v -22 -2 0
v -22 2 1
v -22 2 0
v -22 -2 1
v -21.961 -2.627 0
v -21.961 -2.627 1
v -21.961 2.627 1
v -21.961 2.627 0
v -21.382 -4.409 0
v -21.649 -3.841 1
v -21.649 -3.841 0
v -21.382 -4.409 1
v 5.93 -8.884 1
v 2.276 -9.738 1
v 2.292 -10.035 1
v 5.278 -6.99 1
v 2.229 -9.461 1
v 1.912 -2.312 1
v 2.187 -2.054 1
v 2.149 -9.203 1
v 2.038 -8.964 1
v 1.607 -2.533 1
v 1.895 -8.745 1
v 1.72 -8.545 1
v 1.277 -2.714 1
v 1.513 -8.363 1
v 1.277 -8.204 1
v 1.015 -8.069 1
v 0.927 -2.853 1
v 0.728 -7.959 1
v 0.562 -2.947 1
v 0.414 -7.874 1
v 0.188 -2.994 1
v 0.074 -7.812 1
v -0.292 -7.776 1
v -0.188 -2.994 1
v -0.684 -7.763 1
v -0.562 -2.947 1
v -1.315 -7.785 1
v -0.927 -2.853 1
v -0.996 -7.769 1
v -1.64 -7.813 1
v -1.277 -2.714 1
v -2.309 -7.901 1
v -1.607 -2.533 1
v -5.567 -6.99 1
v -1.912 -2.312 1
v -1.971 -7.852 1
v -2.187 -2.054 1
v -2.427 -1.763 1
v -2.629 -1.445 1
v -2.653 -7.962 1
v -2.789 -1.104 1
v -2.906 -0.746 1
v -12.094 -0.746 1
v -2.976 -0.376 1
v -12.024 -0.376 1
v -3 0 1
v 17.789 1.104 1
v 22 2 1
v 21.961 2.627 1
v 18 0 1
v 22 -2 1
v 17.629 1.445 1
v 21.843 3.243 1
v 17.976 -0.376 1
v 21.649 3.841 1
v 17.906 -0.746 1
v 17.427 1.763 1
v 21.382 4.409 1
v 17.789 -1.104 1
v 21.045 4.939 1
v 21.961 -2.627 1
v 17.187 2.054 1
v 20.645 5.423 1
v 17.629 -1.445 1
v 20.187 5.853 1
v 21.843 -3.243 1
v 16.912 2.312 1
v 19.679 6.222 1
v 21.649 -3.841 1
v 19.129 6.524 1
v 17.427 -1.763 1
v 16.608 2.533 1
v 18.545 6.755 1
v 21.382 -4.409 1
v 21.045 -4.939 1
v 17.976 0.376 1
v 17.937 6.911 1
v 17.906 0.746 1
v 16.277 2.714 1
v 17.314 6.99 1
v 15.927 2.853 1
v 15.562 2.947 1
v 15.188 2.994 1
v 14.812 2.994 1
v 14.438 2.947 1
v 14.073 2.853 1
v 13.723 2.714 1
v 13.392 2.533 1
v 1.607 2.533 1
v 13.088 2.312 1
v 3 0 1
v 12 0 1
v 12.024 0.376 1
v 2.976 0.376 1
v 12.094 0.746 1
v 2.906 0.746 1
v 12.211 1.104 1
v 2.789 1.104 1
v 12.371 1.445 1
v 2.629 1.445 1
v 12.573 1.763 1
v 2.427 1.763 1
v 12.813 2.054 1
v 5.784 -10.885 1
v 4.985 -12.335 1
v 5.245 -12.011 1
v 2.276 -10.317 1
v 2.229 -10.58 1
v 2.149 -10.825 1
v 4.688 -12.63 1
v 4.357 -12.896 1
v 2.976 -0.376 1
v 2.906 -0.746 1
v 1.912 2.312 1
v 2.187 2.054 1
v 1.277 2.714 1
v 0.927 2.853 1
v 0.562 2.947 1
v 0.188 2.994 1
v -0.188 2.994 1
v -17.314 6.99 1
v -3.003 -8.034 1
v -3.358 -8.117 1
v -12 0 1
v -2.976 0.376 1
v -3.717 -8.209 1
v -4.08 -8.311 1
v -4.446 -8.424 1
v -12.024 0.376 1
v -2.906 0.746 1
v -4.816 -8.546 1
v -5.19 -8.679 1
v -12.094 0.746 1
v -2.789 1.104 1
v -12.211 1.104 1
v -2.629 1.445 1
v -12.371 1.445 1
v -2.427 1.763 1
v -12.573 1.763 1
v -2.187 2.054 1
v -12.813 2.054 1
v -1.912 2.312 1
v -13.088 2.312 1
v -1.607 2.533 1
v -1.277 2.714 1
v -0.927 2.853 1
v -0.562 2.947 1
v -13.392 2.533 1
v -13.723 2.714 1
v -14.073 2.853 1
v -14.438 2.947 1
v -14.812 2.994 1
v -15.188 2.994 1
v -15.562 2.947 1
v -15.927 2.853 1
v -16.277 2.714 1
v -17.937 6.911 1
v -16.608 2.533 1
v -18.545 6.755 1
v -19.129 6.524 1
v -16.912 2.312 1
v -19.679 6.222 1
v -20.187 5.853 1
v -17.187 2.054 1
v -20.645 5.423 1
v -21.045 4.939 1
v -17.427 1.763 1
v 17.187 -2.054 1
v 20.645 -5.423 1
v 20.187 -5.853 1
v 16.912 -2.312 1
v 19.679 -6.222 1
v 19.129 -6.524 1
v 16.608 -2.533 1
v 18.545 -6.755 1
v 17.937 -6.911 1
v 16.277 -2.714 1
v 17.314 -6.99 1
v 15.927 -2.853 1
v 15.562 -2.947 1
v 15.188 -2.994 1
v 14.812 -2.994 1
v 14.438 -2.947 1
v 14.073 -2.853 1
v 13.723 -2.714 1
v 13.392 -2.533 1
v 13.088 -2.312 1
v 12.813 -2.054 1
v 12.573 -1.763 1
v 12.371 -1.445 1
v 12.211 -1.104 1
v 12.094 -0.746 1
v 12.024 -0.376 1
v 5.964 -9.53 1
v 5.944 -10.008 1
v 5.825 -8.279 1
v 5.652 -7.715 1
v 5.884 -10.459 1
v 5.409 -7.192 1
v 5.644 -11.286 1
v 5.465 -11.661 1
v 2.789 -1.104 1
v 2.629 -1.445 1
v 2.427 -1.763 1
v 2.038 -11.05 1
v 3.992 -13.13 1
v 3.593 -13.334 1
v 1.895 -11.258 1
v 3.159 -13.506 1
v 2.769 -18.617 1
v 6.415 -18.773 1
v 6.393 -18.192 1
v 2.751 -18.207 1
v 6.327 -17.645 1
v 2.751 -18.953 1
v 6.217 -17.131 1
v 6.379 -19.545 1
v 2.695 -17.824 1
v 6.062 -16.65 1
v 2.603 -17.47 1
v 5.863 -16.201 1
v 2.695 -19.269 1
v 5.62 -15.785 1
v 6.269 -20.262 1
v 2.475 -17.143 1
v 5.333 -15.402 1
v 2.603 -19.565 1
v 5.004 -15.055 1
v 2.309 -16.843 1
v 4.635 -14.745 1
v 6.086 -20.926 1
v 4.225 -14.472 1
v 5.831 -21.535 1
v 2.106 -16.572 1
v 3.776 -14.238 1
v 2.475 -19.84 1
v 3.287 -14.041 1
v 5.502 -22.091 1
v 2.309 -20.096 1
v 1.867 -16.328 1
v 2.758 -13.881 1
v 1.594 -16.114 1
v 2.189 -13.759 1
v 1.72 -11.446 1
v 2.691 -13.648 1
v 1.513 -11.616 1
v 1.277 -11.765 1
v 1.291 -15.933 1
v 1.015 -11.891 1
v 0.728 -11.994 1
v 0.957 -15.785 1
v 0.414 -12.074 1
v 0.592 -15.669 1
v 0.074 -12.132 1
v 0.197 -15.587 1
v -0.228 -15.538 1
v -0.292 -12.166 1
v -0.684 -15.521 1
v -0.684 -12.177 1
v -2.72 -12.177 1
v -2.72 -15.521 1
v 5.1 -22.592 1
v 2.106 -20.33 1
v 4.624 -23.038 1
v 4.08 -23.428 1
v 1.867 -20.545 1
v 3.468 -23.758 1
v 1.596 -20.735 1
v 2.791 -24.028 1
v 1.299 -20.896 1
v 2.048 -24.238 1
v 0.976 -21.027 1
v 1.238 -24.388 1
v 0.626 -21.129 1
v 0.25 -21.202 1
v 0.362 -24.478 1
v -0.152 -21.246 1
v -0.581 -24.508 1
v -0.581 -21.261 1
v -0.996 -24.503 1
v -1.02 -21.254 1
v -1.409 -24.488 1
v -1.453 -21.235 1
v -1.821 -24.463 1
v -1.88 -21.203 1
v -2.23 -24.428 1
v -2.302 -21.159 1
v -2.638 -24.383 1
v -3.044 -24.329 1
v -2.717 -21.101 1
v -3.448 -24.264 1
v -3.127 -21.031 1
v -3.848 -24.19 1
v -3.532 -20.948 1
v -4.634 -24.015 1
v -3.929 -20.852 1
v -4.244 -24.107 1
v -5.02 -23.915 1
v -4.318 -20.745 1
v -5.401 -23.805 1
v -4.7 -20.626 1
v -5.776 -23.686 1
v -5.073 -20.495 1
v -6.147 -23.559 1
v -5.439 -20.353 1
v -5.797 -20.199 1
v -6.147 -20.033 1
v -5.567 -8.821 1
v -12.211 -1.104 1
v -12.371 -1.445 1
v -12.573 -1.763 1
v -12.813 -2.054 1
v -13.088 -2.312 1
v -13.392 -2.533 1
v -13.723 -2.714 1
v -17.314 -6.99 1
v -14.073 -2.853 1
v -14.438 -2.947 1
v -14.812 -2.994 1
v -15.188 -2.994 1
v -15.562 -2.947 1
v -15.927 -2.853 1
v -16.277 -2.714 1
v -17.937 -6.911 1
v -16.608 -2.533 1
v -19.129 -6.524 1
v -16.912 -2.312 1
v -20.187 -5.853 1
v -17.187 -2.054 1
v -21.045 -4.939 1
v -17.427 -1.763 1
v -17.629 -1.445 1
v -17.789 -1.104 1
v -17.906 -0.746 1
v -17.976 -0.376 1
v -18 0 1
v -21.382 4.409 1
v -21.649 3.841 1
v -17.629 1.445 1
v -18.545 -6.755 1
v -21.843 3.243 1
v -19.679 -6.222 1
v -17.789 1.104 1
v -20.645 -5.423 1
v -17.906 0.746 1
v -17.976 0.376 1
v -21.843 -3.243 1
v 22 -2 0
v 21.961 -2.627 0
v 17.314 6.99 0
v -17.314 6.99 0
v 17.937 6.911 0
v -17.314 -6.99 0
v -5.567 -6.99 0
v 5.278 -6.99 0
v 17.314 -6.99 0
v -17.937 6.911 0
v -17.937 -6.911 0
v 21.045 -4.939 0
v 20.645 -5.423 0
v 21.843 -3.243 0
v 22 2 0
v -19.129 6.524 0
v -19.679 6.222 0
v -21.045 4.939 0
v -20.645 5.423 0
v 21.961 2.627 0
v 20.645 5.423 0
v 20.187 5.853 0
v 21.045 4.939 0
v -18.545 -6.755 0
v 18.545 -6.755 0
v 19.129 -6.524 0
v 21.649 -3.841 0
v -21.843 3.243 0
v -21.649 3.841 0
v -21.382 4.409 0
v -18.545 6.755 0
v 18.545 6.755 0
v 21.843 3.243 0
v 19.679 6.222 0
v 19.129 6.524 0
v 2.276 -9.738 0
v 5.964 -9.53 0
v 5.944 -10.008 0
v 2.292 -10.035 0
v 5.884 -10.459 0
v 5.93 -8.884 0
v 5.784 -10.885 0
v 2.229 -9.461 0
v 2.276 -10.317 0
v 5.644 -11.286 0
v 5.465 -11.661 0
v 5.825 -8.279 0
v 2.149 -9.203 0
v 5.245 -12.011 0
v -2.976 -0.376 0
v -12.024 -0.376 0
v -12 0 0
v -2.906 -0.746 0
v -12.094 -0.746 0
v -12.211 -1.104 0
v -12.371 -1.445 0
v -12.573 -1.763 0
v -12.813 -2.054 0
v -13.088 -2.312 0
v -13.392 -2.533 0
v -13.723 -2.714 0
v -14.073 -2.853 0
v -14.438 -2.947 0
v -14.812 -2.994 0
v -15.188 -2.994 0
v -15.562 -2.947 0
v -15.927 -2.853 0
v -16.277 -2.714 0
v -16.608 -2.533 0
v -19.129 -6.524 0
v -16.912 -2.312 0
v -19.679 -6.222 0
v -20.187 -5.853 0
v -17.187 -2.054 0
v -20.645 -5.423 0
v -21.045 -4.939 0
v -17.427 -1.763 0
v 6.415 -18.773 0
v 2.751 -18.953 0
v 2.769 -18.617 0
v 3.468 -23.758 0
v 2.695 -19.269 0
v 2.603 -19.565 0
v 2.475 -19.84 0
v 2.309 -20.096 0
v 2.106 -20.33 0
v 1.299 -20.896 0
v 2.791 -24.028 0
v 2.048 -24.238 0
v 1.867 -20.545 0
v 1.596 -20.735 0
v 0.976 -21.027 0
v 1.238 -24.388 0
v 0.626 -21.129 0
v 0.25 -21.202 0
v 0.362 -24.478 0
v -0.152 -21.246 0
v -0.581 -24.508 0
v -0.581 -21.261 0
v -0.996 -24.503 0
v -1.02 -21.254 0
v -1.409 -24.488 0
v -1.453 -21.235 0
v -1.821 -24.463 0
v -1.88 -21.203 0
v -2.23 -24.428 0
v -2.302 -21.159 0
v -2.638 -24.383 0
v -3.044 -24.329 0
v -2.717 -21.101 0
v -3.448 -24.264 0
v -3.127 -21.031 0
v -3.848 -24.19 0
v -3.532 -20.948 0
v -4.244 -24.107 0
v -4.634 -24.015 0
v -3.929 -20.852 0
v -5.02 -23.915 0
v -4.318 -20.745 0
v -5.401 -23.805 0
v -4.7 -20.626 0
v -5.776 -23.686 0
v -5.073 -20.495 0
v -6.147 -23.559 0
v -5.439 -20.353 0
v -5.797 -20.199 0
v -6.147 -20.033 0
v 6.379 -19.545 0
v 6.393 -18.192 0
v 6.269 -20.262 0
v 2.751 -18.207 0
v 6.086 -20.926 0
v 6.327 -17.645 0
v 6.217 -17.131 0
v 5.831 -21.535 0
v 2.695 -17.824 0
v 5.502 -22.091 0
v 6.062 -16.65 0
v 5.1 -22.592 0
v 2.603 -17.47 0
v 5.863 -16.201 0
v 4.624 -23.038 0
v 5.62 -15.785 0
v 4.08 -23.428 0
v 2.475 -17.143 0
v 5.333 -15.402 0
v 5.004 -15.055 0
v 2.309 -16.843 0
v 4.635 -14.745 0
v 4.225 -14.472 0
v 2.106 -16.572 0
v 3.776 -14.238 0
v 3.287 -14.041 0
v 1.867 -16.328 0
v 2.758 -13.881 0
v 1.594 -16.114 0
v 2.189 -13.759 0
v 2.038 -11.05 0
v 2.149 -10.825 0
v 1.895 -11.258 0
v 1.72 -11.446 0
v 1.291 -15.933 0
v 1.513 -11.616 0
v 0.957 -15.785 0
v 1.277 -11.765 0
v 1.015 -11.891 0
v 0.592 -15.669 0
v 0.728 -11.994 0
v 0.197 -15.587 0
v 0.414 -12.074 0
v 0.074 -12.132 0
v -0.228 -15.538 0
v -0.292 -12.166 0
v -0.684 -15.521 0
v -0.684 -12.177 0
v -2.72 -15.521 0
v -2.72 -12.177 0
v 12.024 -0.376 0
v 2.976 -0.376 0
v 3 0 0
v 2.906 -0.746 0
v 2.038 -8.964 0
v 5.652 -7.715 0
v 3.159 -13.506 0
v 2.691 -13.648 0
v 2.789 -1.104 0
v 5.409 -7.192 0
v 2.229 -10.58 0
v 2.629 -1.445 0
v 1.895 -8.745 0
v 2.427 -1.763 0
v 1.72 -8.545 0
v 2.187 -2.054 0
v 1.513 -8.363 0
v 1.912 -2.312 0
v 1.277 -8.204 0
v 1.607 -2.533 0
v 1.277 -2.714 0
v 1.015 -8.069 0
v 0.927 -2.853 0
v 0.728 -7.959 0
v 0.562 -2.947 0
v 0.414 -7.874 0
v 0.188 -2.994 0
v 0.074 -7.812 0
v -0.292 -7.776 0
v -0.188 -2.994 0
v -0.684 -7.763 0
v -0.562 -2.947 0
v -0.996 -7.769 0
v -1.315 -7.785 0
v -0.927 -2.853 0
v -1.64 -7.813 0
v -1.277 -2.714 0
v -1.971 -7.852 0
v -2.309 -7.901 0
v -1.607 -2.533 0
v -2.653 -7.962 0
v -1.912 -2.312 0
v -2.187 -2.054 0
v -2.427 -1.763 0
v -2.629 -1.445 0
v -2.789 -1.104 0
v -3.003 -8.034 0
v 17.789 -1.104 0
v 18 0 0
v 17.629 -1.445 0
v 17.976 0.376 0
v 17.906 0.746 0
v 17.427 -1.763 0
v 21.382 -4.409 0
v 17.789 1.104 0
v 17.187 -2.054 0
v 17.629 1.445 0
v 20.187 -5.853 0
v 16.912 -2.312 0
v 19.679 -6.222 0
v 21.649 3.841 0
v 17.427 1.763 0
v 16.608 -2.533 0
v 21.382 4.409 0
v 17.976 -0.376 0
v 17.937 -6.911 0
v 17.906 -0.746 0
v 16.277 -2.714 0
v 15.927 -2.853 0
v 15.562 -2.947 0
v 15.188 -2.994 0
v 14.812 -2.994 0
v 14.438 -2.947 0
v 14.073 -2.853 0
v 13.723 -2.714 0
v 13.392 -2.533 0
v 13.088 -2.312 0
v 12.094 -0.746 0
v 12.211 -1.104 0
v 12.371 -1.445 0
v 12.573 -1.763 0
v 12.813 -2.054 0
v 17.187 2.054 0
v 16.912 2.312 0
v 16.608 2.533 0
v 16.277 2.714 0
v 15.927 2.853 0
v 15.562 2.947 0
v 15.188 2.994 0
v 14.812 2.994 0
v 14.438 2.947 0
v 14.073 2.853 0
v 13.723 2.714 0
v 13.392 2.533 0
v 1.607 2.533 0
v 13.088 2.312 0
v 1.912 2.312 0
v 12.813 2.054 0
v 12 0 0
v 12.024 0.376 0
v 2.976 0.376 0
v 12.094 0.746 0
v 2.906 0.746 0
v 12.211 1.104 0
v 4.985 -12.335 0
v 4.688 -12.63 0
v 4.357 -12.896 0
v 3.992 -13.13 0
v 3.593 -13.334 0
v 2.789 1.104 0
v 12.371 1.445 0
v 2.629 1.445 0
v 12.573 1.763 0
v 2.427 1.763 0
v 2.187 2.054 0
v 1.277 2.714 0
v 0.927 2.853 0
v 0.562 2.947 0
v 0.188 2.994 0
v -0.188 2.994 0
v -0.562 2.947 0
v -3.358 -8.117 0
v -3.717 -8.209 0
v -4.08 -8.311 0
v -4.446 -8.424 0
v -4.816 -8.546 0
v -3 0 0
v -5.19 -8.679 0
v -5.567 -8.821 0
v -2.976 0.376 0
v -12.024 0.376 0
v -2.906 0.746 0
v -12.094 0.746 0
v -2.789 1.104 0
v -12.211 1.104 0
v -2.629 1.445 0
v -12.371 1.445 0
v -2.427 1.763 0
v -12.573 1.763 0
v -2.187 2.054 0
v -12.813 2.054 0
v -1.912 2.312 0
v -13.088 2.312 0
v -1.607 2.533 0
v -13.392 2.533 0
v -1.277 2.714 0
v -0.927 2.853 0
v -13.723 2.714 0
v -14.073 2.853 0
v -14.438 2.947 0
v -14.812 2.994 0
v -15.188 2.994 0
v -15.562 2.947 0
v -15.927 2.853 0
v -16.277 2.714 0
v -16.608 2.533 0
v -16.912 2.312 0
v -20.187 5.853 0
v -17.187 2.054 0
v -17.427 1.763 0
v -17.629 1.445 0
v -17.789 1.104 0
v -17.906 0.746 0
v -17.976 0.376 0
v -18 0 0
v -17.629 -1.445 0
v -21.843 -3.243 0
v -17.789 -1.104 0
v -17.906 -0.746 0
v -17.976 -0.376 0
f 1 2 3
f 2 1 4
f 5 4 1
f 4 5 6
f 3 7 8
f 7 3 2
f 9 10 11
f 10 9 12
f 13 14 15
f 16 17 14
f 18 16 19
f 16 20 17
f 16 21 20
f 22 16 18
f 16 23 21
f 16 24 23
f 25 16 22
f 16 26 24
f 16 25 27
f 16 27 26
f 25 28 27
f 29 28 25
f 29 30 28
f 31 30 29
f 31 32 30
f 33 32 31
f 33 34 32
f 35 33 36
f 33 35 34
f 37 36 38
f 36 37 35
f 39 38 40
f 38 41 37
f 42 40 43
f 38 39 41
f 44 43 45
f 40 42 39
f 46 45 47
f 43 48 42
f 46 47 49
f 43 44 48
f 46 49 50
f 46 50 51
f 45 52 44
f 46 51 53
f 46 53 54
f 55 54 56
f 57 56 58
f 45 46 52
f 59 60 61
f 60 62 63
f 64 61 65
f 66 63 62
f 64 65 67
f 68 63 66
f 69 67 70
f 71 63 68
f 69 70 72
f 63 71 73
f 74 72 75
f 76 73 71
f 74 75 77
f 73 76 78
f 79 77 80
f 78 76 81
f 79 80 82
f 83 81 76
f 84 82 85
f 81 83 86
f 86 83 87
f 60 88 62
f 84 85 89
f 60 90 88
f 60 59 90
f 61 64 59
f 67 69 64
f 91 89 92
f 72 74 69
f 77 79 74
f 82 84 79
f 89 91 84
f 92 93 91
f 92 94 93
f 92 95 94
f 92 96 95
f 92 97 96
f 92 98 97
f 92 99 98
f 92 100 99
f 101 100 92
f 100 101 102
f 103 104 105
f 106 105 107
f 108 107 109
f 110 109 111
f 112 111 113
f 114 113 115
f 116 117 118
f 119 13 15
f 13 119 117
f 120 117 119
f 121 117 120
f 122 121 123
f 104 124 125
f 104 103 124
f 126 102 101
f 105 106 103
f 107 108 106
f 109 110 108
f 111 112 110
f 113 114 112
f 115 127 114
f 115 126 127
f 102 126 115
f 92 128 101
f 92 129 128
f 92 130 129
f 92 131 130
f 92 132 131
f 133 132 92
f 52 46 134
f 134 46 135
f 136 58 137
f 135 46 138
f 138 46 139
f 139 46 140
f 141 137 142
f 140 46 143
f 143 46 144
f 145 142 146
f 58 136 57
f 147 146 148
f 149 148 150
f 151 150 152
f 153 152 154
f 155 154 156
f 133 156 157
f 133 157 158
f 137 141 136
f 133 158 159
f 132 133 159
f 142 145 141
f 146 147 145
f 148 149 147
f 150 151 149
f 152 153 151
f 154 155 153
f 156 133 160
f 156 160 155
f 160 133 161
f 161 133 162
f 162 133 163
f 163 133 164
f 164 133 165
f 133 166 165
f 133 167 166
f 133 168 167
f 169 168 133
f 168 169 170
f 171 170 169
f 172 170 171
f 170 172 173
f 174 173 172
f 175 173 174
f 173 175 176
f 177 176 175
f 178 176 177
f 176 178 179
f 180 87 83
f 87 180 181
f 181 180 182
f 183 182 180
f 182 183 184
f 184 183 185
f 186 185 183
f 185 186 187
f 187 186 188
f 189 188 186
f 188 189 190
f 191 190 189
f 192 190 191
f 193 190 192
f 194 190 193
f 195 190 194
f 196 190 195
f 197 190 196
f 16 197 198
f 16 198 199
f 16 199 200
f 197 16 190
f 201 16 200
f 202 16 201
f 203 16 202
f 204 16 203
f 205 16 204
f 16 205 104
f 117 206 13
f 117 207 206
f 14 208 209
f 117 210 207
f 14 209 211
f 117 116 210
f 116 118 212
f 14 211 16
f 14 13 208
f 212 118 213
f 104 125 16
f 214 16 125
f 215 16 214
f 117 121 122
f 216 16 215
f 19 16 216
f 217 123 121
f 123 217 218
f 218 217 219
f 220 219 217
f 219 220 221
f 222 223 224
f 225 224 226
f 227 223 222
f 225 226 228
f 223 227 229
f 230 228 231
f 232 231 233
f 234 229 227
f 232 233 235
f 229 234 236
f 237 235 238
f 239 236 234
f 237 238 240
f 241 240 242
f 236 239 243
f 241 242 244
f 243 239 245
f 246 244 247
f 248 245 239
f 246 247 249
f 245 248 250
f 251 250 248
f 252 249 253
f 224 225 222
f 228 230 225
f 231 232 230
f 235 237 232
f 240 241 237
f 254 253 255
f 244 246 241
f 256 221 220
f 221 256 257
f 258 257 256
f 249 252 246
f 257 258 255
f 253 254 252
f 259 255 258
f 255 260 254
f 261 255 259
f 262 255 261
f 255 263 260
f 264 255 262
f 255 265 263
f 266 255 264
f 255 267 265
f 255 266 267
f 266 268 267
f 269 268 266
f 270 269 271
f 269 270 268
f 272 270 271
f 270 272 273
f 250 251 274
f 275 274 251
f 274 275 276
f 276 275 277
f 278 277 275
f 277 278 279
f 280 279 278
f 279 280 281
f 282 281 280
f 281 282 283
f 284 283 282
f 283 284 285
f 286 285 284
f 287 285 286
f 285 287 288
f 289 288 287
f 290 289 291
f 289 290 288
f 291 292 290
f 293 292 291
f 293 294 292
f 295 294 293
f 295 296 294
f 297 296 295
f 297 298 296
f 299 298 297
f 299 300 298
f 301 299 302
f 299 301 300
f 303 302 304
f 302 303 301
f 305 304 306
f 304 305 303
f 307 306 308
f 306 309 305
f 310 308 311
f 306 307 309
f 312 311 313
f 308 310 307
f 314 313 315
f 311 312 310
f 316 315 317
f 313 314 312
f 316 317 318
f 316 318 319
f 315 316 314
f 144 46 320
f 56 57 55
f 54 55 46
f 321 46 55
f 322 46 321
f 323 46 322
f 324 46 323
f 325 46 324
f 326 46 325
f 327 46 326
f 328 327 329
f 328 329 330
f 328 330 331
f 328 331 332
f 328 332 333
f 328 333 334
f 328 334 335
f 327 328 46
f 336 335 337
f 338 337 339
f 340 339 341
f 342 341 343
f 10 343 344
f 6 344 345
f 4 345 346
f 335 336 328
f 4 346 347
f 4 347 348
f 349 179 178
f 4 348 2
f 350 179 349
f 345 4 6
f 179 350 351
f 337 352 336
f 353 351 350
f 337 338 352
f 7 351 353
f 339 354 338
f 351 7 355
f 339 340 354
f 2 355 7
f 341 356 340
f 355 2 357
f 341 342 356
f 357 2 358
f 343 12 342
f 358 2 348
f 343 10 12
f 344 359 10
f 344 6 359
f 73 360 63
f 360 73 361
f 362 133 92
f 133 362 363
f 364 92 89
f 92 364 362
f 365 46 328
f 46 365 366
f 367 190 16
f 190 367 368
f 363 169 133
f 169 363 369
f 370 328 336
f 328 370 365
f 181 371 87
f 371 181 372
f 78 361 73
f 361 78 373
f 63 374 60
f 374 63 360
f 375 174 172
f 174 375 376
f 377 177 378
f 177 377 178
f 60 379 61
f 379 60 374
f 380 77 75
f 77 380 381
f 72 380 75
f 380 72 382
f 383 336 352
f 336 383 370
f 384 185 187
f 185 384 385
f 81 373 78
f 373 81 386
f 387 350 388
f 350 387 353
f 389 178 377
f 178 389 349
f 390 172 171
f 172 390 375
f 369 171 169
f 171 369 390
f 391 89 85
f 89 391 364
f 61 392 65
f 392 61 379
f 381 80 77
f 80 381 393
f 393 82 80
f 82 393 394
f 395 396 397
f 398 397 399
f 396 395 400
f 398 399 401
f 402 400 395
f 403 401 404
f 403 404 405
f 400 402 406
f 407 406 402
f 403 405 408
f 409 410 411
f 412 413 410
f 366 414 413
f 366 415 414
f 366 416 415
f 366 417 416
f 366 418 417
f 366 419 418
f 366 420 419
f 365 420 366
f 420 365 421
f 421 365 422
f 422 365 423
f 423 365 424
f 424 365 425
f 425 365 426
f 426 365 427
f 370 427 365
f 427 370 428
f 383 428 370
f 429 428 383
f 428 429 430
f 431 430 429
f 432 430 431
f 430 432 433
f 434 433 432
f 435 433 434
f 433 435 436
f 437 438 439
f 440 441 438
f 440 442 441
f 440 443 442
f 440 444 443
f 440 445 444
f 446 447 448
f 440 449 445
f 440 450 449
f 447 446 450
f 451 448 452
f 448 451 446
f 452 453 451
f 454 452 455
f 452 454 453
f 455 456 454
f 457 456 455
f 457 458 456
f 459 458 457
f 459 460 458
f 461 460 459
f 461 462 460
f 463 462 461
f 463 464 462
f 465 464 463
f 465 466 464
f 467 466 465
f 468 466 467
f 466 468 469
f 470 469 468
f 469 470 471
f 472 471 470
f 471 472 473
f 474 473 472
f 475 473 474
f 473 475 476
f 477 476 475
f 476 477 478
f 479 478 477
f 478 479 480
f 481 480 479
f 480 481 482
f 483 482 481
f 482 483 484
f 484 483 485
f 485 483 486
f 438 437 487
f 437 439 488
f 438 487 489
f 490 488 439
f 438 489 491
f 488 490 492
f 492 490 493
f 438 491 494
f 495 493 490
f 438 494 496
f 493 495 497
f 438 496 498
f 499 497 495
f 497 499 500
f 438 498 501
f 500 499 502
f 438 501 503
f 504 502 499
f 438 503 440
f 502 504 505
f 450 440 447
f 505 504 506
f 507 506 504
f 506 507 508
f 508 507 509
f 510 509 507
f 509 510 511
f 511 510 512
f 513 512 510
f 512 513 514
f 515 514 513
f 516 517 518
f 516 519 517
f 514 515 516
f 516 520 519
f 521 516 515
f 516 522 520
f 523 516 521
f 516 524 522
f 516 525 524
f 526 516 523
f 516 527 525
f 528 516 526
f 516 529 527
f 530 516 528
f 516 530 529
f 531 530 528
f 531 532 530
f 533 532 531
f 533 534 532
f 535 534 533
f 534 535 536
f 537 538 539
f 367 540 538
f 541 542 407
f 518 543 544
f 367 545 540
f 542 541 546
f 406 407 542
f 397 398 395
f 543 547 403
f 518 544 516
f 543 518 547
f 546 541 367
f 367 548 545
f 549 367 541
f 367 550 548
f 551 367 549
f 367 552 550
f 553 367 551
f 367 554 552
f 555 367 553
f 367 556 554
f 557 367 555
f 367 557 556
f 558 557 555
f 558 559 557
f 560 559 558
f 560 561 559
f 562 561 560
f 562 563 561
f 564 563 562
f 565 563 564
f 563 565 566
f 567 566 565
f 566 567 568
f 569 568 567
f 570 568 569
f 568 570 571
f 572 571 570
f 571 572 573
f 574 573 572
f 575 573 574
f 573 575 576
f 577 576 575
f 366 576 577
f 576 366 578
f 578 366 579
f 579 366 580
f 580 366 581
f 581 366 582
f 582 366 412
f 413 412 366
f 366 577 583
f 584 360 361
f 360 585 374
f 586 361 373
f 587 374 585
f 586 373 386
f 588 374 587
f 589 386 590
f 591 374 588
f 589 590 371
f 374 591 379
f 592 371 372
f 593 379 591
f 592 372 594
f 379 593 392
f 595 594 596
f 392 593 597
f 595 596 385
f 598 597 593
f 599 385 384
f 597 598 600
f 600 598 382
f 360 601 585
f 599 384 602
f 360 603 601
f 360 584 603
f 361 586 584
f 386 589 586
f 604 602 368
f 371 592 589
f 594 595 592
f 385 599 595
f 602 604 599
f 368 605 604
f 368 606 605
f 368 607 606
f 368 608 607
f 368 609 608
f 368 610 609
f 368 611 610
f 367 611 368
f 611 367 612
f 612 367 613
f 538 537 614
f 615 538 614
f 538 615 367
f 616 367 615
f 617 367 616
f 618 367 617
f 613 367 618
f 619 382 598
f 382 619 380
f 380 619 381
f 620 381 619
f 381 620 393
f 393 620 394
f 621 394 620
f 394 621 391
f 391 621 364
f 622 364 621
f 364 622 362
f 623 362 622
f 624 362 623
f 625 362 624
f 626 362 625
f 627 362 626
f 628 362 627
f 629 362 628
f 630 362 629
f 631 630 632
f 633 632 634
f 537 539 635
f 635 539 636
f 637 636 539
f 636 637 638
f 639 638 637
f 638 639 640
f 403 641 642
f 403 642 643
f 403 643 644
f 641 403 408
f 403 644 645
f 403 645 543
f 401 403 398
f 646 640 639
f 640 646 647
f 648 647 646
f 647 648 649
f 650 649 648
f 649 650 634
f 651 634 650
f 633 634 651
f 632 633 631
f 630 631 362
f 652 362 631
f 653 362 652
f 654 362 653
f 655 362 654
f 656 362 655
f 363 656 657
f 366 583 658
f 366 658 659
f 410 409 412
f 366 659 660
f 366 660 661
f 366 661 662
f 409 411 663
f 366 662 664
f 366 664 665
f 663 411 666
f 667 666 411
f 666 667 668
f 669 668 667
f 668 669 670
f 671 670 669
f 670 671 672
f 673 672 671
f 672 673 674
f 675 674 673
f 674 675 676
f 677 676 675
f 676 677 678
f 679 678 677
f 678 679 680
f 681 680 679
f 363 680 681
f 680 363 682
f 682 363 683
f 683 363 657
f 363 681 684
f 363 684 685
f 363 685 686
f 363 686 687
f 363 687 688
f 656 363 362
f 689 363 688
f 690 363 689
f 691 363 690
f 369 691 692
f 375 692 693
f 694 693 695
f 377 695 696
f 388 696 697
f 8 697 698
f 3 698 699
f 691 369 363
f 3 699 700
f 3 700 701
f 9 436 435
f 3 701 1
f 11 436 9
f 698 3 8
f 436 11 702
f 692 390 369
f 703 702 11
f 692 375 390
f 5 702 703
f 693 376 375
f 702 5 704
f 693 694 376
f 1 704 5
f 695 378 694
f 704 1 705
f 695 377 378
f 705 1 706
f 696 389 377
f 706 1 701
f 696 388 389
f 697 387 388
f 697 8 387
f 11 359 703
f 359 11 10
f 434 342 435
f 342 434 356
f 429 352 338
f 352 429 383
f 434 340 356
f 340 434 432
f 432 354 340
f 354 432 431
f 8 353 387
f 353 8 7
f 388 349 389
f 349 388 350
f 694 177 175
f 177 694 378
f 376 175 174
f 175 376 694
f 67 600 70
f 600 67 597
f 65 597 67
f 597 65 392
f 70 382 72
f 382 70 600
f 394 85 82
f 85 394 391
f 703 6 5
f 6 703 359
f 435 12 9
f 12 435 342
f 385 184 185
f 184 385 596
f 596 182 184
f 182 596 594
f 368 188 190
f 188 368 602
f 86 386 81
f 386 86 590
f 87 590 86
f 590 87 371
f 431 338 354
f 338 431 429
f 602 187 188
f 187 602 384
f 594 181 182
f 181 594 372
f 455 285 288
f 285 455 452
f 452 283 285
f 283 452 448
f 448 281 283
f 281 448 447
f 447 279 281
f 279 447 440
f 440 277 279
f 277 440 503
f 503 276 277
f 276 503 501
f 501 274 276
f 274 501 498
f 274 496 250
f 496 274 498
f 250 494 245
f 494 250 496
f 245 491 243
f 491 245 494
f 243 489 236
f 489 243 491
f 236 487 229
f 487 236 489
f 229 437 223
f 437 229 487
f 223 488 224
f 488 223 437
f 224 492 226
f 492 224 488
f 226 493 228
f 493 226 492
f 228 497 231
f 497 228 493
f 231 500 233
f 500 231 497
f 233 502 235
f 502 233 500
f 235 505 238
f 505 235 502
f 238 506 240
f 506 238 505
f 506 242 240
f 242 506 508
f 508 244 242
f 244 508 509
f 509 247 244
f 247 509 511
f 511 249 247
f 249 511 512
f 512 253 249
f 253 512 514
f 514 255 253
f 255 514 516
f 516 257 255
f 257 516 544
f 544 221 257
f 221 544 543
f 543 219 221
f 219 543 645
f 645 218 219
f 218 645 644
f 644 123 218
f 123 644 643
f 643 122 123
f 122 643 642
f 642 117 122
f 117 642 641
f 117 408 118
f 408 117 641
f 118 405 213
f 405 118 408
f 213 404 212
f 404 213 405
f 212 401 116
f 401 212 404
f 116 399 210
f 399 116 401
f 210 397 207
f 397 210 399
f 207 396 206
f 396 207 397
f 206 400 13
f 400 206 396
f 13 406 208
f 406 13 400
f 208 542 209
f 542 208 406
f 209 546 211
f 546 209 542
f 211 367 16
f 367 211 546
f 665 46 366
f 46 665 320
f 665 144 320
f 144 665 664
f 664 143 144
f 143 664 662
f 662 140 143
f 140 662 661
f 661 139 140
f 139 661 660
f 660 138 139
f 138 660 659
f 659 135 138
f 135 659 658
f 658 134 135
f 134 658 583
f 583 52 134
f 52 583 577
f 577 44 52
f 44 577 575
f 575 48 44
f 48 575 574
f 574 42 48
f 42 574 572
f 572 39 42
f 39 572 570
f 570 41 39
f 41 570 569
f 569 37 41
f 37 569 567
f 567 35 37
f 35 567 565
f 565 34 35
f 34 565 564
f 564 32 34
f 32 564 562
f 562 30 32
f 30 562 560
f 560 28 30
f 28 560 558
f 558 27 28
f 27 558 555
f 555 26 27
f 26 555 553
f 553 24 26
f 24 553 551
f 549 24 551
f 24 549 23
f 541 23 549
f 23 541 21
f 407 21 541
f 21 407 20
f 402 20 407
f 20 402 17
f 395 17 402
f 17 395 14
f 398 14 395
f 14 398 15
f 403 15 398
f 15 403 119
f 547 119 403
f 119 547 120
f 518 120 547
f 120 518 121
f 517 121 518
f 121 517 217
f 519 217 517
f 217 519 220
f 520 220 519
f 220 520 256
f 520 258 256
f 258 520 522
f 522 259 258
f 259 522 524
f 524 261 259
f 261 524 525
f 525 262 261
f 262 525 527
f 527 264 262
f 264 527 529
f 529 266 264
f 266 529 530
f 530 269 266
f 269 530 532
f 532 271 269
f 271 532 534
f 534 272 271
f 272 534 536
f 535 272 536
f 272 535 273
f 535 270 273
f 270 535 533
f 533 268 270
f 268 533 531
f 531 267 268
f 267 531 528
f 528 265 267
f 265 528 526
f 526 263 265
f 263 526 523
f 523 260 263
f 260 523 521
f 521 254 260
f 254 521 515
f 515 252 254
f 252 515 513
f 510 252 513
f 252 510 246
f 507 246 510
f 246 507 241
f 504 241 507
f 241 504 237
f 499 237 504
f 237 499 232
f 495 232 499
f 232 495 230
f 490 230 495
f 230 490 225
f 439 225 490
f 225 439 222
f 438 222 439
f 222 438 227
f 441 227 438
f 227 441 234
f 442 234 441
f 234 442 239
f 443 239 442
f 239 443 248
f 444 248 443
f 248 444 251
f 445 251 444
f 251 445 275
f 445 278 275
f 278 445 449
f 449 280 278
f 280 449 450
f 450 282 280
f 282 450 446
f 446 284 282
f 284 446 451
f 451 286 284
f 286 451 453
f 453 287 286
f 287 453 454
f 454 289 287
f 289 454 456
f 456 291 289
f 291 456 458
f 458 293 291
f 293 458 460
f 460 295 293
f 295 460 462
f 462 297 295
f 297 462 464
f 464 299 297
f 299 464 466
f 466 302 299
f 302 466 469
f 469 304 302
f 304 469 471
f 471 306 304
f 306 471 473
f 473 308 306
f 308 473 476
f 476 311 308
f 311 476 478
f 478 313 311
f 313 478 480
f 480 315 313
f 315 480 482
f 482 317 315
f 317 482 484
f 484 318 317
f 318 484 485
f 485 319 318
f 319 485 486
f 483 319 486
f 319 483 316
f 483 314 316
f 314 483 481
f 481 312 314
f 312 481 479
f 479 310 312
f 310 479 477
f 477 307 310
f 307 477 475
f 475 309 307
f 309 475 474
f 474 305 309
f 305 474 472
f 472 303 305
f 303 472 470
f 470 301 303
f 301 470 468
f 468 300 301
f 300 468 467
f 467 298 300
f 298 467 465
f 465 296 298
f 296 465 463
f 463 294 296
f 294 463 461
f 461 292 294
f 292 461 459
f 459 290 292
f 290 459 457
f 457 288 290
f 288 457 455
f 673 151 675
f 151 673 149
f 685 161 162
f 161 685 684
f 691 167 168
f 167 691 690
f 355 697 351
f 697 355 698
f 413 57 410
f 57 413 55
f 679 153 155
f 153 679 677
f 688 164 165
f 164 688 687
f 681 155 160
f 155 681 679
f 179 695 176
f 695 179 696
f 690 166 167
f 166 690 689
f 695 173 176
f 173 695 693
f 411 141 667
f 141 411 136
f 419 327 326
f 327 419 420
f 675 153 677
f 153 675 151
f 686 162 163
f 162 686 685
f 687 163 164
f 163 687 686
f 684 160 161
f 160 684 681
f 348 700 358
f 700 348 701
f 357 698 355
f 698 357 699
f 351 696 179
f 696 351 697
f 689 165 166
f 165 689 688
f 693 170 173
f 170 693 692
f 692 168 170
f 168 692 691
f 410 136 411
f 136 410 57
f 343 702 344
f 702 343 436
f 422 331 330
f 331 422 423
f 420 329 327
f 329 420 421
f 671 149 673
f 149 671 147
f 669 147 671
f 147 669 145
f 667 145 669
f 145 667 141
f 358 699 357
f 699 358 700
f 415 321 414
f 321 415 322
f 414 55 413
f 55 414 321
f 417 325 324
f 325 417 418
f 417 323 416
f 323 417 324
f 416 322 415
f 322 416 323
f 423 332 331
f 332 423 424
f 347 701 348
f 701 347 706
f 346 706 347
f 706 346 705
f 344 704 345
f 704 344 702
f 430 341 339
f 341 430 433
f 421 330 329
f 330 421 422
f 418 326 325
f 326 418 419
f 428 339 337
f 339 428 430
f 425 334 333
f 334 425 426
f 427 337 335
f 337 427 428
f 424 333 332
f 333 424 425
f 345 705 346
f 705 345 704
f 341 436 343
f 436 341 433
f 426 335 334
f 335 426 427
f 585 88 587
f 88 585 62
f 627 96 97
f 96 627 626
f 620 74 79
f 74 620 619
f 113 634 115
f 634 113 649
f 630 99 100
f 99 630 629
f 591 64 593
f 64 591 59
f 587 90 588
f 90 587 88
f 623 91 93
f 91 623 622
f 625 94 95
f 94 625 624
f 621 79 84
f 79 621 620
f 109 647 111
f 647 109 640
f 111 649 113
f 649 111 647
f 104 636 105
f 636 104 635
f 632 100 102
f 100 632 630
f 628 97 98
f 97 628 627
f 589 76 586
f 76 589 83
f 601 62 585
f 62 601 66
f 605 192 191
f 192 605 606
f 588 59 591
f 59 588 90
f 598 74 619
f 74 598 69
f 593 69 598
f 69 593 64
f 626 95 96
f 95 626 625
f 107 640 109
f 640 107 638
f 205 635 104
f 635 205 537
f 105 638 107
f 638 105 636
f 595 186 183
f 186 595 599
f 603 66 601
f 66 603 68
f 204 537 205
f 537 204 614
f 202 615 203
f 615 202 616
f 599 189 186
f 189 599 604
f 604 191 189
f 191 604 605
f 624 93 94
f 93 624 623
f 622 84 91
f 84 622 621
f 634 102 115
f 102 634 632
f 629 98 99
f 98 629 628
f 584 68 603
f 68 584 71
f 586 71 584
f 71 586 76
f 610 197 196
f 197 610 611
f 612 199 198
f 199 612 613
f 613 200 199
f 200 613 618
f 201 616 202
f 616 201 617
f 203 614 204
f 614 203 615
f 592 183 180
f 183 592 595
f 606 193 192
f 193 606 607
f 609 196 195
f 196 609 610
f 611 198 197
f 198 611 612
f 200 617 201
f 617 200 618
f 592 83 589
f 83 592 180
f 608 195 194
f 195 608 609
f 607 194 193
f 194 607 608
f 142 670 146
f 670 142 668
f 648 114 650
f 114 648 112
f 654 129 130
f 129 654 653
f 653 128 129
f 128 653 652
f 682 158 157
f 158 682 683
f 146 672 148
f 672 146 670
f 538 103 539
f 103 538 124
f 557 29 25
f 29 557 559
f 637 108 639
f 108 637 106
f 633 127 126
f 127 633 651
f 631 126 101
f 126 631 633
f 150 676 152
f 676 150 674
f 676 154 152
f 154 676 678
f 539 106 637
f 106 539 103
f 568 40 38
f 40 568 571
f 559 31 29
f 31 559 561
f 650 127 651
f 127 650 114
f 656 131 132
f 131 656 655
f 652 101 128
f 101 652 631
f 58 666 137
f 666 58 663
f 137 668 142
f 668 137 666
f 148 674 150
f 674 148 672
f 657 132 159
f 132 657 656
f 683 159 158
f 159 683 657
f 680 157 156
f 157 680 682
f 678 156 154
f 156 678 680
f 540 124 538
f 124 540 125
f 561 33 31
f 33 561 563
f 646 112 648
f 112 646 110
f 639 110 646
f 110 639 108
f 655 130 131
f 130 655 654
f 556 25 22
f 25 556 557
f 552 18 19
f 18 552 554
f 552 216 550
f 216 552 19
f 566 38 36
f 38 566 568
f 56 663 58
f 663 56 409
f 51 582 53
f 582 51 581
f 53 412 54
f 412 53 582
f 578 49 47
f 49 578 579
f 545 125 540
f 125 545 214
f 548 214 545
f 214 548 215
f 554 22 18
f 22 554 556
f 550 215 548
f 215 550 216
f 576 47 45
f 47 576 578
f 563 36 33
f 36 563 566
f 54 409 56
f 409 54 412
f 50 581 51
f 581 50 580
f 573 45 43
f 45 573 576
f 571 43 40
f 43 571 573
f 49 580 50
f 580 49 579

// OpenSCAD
$fn = 50;


difference() {
	union() {
		translate(v = [0, 0, 0]) {
			rotate(a = [0, 0, 0]) {
				hull() {
					translate(v = [-17.0000000000, 2.0000000000, 0]) {
						rotate(a = [0, 0, 0]) {
							translate(v = [0, 0, 0]) {
								rotate(a = [0, 0, 0]) {
									cylinder(h = 1, r = 5);
								}
							}
						}
					}
					translate(v = [17.0000000000, 2.0000000000, 0]) {
						rotate(a = [0, 0, 0]) {
							translate(v = [0, 0, 0]) {
								rotate(a = [0, 0, 0]) {
									cylinder(h = 1, r = 5);
								}
							}
						}
					}
					translate(v = [-17.0000000000, -2.0000000000, 0]) {
						rotate(a = [0, 0, 0]) {
							translate(v = [0, 0, 0]) {
								rotate(a = [0, 0, 0]) {
									cylinder(h = 1, r = 5);
								}
							}
						}
					}
					translate(v = [17.0000000000, -2.0000000000, 0]) {
						rotate(a = [0, 0, 0]) {
							translate(v = [0, 0, 0]) {
								rotate(a = [0, 0, 0]) {
									cylinder(h = 1, r = 5);
								}
							}
						}
					}
				}
			}
		}
		translate(v = [0, -5, 0]) {
			rotate(a = [0, 0, 0]) {
				linear_extrude(height = 1) {
					text(font = "DejaVu Sans Mono:style=Bold", halign = "center", size = 19.0000000000, text = "3", valign = "top");
				}
			}
		}
	}
	union() {
		translate(v = [-15.0000000000, 0.0000000000, -125.0000000000]) {
			rotate(a = [0, 0, 0]) {
				cylinder(h = 250, r = 3.0000000000);
			}
		}
		translate(v = [15.0000000000, 0.0000000000, -125.0000000000]) {
			rotate(a = [0, 0, 0]) {
				cylinder(h = 250, r = 3.0000000000);
			}
		}
		translate(v = [15.0000000000, 0.0000000000, -125.0000000000]) {
			rotate(a = [0, 0, 0]) {
				cylinder(h = 250, r = 3.0000000000);
			}
		}
		translate(v = [0, 0, -125.0000000000]) {
			rotate(a = [0, 0, 0]) {
				cylinder(h = 250, r = 3.0000000000);
			}
		}
	}
}
